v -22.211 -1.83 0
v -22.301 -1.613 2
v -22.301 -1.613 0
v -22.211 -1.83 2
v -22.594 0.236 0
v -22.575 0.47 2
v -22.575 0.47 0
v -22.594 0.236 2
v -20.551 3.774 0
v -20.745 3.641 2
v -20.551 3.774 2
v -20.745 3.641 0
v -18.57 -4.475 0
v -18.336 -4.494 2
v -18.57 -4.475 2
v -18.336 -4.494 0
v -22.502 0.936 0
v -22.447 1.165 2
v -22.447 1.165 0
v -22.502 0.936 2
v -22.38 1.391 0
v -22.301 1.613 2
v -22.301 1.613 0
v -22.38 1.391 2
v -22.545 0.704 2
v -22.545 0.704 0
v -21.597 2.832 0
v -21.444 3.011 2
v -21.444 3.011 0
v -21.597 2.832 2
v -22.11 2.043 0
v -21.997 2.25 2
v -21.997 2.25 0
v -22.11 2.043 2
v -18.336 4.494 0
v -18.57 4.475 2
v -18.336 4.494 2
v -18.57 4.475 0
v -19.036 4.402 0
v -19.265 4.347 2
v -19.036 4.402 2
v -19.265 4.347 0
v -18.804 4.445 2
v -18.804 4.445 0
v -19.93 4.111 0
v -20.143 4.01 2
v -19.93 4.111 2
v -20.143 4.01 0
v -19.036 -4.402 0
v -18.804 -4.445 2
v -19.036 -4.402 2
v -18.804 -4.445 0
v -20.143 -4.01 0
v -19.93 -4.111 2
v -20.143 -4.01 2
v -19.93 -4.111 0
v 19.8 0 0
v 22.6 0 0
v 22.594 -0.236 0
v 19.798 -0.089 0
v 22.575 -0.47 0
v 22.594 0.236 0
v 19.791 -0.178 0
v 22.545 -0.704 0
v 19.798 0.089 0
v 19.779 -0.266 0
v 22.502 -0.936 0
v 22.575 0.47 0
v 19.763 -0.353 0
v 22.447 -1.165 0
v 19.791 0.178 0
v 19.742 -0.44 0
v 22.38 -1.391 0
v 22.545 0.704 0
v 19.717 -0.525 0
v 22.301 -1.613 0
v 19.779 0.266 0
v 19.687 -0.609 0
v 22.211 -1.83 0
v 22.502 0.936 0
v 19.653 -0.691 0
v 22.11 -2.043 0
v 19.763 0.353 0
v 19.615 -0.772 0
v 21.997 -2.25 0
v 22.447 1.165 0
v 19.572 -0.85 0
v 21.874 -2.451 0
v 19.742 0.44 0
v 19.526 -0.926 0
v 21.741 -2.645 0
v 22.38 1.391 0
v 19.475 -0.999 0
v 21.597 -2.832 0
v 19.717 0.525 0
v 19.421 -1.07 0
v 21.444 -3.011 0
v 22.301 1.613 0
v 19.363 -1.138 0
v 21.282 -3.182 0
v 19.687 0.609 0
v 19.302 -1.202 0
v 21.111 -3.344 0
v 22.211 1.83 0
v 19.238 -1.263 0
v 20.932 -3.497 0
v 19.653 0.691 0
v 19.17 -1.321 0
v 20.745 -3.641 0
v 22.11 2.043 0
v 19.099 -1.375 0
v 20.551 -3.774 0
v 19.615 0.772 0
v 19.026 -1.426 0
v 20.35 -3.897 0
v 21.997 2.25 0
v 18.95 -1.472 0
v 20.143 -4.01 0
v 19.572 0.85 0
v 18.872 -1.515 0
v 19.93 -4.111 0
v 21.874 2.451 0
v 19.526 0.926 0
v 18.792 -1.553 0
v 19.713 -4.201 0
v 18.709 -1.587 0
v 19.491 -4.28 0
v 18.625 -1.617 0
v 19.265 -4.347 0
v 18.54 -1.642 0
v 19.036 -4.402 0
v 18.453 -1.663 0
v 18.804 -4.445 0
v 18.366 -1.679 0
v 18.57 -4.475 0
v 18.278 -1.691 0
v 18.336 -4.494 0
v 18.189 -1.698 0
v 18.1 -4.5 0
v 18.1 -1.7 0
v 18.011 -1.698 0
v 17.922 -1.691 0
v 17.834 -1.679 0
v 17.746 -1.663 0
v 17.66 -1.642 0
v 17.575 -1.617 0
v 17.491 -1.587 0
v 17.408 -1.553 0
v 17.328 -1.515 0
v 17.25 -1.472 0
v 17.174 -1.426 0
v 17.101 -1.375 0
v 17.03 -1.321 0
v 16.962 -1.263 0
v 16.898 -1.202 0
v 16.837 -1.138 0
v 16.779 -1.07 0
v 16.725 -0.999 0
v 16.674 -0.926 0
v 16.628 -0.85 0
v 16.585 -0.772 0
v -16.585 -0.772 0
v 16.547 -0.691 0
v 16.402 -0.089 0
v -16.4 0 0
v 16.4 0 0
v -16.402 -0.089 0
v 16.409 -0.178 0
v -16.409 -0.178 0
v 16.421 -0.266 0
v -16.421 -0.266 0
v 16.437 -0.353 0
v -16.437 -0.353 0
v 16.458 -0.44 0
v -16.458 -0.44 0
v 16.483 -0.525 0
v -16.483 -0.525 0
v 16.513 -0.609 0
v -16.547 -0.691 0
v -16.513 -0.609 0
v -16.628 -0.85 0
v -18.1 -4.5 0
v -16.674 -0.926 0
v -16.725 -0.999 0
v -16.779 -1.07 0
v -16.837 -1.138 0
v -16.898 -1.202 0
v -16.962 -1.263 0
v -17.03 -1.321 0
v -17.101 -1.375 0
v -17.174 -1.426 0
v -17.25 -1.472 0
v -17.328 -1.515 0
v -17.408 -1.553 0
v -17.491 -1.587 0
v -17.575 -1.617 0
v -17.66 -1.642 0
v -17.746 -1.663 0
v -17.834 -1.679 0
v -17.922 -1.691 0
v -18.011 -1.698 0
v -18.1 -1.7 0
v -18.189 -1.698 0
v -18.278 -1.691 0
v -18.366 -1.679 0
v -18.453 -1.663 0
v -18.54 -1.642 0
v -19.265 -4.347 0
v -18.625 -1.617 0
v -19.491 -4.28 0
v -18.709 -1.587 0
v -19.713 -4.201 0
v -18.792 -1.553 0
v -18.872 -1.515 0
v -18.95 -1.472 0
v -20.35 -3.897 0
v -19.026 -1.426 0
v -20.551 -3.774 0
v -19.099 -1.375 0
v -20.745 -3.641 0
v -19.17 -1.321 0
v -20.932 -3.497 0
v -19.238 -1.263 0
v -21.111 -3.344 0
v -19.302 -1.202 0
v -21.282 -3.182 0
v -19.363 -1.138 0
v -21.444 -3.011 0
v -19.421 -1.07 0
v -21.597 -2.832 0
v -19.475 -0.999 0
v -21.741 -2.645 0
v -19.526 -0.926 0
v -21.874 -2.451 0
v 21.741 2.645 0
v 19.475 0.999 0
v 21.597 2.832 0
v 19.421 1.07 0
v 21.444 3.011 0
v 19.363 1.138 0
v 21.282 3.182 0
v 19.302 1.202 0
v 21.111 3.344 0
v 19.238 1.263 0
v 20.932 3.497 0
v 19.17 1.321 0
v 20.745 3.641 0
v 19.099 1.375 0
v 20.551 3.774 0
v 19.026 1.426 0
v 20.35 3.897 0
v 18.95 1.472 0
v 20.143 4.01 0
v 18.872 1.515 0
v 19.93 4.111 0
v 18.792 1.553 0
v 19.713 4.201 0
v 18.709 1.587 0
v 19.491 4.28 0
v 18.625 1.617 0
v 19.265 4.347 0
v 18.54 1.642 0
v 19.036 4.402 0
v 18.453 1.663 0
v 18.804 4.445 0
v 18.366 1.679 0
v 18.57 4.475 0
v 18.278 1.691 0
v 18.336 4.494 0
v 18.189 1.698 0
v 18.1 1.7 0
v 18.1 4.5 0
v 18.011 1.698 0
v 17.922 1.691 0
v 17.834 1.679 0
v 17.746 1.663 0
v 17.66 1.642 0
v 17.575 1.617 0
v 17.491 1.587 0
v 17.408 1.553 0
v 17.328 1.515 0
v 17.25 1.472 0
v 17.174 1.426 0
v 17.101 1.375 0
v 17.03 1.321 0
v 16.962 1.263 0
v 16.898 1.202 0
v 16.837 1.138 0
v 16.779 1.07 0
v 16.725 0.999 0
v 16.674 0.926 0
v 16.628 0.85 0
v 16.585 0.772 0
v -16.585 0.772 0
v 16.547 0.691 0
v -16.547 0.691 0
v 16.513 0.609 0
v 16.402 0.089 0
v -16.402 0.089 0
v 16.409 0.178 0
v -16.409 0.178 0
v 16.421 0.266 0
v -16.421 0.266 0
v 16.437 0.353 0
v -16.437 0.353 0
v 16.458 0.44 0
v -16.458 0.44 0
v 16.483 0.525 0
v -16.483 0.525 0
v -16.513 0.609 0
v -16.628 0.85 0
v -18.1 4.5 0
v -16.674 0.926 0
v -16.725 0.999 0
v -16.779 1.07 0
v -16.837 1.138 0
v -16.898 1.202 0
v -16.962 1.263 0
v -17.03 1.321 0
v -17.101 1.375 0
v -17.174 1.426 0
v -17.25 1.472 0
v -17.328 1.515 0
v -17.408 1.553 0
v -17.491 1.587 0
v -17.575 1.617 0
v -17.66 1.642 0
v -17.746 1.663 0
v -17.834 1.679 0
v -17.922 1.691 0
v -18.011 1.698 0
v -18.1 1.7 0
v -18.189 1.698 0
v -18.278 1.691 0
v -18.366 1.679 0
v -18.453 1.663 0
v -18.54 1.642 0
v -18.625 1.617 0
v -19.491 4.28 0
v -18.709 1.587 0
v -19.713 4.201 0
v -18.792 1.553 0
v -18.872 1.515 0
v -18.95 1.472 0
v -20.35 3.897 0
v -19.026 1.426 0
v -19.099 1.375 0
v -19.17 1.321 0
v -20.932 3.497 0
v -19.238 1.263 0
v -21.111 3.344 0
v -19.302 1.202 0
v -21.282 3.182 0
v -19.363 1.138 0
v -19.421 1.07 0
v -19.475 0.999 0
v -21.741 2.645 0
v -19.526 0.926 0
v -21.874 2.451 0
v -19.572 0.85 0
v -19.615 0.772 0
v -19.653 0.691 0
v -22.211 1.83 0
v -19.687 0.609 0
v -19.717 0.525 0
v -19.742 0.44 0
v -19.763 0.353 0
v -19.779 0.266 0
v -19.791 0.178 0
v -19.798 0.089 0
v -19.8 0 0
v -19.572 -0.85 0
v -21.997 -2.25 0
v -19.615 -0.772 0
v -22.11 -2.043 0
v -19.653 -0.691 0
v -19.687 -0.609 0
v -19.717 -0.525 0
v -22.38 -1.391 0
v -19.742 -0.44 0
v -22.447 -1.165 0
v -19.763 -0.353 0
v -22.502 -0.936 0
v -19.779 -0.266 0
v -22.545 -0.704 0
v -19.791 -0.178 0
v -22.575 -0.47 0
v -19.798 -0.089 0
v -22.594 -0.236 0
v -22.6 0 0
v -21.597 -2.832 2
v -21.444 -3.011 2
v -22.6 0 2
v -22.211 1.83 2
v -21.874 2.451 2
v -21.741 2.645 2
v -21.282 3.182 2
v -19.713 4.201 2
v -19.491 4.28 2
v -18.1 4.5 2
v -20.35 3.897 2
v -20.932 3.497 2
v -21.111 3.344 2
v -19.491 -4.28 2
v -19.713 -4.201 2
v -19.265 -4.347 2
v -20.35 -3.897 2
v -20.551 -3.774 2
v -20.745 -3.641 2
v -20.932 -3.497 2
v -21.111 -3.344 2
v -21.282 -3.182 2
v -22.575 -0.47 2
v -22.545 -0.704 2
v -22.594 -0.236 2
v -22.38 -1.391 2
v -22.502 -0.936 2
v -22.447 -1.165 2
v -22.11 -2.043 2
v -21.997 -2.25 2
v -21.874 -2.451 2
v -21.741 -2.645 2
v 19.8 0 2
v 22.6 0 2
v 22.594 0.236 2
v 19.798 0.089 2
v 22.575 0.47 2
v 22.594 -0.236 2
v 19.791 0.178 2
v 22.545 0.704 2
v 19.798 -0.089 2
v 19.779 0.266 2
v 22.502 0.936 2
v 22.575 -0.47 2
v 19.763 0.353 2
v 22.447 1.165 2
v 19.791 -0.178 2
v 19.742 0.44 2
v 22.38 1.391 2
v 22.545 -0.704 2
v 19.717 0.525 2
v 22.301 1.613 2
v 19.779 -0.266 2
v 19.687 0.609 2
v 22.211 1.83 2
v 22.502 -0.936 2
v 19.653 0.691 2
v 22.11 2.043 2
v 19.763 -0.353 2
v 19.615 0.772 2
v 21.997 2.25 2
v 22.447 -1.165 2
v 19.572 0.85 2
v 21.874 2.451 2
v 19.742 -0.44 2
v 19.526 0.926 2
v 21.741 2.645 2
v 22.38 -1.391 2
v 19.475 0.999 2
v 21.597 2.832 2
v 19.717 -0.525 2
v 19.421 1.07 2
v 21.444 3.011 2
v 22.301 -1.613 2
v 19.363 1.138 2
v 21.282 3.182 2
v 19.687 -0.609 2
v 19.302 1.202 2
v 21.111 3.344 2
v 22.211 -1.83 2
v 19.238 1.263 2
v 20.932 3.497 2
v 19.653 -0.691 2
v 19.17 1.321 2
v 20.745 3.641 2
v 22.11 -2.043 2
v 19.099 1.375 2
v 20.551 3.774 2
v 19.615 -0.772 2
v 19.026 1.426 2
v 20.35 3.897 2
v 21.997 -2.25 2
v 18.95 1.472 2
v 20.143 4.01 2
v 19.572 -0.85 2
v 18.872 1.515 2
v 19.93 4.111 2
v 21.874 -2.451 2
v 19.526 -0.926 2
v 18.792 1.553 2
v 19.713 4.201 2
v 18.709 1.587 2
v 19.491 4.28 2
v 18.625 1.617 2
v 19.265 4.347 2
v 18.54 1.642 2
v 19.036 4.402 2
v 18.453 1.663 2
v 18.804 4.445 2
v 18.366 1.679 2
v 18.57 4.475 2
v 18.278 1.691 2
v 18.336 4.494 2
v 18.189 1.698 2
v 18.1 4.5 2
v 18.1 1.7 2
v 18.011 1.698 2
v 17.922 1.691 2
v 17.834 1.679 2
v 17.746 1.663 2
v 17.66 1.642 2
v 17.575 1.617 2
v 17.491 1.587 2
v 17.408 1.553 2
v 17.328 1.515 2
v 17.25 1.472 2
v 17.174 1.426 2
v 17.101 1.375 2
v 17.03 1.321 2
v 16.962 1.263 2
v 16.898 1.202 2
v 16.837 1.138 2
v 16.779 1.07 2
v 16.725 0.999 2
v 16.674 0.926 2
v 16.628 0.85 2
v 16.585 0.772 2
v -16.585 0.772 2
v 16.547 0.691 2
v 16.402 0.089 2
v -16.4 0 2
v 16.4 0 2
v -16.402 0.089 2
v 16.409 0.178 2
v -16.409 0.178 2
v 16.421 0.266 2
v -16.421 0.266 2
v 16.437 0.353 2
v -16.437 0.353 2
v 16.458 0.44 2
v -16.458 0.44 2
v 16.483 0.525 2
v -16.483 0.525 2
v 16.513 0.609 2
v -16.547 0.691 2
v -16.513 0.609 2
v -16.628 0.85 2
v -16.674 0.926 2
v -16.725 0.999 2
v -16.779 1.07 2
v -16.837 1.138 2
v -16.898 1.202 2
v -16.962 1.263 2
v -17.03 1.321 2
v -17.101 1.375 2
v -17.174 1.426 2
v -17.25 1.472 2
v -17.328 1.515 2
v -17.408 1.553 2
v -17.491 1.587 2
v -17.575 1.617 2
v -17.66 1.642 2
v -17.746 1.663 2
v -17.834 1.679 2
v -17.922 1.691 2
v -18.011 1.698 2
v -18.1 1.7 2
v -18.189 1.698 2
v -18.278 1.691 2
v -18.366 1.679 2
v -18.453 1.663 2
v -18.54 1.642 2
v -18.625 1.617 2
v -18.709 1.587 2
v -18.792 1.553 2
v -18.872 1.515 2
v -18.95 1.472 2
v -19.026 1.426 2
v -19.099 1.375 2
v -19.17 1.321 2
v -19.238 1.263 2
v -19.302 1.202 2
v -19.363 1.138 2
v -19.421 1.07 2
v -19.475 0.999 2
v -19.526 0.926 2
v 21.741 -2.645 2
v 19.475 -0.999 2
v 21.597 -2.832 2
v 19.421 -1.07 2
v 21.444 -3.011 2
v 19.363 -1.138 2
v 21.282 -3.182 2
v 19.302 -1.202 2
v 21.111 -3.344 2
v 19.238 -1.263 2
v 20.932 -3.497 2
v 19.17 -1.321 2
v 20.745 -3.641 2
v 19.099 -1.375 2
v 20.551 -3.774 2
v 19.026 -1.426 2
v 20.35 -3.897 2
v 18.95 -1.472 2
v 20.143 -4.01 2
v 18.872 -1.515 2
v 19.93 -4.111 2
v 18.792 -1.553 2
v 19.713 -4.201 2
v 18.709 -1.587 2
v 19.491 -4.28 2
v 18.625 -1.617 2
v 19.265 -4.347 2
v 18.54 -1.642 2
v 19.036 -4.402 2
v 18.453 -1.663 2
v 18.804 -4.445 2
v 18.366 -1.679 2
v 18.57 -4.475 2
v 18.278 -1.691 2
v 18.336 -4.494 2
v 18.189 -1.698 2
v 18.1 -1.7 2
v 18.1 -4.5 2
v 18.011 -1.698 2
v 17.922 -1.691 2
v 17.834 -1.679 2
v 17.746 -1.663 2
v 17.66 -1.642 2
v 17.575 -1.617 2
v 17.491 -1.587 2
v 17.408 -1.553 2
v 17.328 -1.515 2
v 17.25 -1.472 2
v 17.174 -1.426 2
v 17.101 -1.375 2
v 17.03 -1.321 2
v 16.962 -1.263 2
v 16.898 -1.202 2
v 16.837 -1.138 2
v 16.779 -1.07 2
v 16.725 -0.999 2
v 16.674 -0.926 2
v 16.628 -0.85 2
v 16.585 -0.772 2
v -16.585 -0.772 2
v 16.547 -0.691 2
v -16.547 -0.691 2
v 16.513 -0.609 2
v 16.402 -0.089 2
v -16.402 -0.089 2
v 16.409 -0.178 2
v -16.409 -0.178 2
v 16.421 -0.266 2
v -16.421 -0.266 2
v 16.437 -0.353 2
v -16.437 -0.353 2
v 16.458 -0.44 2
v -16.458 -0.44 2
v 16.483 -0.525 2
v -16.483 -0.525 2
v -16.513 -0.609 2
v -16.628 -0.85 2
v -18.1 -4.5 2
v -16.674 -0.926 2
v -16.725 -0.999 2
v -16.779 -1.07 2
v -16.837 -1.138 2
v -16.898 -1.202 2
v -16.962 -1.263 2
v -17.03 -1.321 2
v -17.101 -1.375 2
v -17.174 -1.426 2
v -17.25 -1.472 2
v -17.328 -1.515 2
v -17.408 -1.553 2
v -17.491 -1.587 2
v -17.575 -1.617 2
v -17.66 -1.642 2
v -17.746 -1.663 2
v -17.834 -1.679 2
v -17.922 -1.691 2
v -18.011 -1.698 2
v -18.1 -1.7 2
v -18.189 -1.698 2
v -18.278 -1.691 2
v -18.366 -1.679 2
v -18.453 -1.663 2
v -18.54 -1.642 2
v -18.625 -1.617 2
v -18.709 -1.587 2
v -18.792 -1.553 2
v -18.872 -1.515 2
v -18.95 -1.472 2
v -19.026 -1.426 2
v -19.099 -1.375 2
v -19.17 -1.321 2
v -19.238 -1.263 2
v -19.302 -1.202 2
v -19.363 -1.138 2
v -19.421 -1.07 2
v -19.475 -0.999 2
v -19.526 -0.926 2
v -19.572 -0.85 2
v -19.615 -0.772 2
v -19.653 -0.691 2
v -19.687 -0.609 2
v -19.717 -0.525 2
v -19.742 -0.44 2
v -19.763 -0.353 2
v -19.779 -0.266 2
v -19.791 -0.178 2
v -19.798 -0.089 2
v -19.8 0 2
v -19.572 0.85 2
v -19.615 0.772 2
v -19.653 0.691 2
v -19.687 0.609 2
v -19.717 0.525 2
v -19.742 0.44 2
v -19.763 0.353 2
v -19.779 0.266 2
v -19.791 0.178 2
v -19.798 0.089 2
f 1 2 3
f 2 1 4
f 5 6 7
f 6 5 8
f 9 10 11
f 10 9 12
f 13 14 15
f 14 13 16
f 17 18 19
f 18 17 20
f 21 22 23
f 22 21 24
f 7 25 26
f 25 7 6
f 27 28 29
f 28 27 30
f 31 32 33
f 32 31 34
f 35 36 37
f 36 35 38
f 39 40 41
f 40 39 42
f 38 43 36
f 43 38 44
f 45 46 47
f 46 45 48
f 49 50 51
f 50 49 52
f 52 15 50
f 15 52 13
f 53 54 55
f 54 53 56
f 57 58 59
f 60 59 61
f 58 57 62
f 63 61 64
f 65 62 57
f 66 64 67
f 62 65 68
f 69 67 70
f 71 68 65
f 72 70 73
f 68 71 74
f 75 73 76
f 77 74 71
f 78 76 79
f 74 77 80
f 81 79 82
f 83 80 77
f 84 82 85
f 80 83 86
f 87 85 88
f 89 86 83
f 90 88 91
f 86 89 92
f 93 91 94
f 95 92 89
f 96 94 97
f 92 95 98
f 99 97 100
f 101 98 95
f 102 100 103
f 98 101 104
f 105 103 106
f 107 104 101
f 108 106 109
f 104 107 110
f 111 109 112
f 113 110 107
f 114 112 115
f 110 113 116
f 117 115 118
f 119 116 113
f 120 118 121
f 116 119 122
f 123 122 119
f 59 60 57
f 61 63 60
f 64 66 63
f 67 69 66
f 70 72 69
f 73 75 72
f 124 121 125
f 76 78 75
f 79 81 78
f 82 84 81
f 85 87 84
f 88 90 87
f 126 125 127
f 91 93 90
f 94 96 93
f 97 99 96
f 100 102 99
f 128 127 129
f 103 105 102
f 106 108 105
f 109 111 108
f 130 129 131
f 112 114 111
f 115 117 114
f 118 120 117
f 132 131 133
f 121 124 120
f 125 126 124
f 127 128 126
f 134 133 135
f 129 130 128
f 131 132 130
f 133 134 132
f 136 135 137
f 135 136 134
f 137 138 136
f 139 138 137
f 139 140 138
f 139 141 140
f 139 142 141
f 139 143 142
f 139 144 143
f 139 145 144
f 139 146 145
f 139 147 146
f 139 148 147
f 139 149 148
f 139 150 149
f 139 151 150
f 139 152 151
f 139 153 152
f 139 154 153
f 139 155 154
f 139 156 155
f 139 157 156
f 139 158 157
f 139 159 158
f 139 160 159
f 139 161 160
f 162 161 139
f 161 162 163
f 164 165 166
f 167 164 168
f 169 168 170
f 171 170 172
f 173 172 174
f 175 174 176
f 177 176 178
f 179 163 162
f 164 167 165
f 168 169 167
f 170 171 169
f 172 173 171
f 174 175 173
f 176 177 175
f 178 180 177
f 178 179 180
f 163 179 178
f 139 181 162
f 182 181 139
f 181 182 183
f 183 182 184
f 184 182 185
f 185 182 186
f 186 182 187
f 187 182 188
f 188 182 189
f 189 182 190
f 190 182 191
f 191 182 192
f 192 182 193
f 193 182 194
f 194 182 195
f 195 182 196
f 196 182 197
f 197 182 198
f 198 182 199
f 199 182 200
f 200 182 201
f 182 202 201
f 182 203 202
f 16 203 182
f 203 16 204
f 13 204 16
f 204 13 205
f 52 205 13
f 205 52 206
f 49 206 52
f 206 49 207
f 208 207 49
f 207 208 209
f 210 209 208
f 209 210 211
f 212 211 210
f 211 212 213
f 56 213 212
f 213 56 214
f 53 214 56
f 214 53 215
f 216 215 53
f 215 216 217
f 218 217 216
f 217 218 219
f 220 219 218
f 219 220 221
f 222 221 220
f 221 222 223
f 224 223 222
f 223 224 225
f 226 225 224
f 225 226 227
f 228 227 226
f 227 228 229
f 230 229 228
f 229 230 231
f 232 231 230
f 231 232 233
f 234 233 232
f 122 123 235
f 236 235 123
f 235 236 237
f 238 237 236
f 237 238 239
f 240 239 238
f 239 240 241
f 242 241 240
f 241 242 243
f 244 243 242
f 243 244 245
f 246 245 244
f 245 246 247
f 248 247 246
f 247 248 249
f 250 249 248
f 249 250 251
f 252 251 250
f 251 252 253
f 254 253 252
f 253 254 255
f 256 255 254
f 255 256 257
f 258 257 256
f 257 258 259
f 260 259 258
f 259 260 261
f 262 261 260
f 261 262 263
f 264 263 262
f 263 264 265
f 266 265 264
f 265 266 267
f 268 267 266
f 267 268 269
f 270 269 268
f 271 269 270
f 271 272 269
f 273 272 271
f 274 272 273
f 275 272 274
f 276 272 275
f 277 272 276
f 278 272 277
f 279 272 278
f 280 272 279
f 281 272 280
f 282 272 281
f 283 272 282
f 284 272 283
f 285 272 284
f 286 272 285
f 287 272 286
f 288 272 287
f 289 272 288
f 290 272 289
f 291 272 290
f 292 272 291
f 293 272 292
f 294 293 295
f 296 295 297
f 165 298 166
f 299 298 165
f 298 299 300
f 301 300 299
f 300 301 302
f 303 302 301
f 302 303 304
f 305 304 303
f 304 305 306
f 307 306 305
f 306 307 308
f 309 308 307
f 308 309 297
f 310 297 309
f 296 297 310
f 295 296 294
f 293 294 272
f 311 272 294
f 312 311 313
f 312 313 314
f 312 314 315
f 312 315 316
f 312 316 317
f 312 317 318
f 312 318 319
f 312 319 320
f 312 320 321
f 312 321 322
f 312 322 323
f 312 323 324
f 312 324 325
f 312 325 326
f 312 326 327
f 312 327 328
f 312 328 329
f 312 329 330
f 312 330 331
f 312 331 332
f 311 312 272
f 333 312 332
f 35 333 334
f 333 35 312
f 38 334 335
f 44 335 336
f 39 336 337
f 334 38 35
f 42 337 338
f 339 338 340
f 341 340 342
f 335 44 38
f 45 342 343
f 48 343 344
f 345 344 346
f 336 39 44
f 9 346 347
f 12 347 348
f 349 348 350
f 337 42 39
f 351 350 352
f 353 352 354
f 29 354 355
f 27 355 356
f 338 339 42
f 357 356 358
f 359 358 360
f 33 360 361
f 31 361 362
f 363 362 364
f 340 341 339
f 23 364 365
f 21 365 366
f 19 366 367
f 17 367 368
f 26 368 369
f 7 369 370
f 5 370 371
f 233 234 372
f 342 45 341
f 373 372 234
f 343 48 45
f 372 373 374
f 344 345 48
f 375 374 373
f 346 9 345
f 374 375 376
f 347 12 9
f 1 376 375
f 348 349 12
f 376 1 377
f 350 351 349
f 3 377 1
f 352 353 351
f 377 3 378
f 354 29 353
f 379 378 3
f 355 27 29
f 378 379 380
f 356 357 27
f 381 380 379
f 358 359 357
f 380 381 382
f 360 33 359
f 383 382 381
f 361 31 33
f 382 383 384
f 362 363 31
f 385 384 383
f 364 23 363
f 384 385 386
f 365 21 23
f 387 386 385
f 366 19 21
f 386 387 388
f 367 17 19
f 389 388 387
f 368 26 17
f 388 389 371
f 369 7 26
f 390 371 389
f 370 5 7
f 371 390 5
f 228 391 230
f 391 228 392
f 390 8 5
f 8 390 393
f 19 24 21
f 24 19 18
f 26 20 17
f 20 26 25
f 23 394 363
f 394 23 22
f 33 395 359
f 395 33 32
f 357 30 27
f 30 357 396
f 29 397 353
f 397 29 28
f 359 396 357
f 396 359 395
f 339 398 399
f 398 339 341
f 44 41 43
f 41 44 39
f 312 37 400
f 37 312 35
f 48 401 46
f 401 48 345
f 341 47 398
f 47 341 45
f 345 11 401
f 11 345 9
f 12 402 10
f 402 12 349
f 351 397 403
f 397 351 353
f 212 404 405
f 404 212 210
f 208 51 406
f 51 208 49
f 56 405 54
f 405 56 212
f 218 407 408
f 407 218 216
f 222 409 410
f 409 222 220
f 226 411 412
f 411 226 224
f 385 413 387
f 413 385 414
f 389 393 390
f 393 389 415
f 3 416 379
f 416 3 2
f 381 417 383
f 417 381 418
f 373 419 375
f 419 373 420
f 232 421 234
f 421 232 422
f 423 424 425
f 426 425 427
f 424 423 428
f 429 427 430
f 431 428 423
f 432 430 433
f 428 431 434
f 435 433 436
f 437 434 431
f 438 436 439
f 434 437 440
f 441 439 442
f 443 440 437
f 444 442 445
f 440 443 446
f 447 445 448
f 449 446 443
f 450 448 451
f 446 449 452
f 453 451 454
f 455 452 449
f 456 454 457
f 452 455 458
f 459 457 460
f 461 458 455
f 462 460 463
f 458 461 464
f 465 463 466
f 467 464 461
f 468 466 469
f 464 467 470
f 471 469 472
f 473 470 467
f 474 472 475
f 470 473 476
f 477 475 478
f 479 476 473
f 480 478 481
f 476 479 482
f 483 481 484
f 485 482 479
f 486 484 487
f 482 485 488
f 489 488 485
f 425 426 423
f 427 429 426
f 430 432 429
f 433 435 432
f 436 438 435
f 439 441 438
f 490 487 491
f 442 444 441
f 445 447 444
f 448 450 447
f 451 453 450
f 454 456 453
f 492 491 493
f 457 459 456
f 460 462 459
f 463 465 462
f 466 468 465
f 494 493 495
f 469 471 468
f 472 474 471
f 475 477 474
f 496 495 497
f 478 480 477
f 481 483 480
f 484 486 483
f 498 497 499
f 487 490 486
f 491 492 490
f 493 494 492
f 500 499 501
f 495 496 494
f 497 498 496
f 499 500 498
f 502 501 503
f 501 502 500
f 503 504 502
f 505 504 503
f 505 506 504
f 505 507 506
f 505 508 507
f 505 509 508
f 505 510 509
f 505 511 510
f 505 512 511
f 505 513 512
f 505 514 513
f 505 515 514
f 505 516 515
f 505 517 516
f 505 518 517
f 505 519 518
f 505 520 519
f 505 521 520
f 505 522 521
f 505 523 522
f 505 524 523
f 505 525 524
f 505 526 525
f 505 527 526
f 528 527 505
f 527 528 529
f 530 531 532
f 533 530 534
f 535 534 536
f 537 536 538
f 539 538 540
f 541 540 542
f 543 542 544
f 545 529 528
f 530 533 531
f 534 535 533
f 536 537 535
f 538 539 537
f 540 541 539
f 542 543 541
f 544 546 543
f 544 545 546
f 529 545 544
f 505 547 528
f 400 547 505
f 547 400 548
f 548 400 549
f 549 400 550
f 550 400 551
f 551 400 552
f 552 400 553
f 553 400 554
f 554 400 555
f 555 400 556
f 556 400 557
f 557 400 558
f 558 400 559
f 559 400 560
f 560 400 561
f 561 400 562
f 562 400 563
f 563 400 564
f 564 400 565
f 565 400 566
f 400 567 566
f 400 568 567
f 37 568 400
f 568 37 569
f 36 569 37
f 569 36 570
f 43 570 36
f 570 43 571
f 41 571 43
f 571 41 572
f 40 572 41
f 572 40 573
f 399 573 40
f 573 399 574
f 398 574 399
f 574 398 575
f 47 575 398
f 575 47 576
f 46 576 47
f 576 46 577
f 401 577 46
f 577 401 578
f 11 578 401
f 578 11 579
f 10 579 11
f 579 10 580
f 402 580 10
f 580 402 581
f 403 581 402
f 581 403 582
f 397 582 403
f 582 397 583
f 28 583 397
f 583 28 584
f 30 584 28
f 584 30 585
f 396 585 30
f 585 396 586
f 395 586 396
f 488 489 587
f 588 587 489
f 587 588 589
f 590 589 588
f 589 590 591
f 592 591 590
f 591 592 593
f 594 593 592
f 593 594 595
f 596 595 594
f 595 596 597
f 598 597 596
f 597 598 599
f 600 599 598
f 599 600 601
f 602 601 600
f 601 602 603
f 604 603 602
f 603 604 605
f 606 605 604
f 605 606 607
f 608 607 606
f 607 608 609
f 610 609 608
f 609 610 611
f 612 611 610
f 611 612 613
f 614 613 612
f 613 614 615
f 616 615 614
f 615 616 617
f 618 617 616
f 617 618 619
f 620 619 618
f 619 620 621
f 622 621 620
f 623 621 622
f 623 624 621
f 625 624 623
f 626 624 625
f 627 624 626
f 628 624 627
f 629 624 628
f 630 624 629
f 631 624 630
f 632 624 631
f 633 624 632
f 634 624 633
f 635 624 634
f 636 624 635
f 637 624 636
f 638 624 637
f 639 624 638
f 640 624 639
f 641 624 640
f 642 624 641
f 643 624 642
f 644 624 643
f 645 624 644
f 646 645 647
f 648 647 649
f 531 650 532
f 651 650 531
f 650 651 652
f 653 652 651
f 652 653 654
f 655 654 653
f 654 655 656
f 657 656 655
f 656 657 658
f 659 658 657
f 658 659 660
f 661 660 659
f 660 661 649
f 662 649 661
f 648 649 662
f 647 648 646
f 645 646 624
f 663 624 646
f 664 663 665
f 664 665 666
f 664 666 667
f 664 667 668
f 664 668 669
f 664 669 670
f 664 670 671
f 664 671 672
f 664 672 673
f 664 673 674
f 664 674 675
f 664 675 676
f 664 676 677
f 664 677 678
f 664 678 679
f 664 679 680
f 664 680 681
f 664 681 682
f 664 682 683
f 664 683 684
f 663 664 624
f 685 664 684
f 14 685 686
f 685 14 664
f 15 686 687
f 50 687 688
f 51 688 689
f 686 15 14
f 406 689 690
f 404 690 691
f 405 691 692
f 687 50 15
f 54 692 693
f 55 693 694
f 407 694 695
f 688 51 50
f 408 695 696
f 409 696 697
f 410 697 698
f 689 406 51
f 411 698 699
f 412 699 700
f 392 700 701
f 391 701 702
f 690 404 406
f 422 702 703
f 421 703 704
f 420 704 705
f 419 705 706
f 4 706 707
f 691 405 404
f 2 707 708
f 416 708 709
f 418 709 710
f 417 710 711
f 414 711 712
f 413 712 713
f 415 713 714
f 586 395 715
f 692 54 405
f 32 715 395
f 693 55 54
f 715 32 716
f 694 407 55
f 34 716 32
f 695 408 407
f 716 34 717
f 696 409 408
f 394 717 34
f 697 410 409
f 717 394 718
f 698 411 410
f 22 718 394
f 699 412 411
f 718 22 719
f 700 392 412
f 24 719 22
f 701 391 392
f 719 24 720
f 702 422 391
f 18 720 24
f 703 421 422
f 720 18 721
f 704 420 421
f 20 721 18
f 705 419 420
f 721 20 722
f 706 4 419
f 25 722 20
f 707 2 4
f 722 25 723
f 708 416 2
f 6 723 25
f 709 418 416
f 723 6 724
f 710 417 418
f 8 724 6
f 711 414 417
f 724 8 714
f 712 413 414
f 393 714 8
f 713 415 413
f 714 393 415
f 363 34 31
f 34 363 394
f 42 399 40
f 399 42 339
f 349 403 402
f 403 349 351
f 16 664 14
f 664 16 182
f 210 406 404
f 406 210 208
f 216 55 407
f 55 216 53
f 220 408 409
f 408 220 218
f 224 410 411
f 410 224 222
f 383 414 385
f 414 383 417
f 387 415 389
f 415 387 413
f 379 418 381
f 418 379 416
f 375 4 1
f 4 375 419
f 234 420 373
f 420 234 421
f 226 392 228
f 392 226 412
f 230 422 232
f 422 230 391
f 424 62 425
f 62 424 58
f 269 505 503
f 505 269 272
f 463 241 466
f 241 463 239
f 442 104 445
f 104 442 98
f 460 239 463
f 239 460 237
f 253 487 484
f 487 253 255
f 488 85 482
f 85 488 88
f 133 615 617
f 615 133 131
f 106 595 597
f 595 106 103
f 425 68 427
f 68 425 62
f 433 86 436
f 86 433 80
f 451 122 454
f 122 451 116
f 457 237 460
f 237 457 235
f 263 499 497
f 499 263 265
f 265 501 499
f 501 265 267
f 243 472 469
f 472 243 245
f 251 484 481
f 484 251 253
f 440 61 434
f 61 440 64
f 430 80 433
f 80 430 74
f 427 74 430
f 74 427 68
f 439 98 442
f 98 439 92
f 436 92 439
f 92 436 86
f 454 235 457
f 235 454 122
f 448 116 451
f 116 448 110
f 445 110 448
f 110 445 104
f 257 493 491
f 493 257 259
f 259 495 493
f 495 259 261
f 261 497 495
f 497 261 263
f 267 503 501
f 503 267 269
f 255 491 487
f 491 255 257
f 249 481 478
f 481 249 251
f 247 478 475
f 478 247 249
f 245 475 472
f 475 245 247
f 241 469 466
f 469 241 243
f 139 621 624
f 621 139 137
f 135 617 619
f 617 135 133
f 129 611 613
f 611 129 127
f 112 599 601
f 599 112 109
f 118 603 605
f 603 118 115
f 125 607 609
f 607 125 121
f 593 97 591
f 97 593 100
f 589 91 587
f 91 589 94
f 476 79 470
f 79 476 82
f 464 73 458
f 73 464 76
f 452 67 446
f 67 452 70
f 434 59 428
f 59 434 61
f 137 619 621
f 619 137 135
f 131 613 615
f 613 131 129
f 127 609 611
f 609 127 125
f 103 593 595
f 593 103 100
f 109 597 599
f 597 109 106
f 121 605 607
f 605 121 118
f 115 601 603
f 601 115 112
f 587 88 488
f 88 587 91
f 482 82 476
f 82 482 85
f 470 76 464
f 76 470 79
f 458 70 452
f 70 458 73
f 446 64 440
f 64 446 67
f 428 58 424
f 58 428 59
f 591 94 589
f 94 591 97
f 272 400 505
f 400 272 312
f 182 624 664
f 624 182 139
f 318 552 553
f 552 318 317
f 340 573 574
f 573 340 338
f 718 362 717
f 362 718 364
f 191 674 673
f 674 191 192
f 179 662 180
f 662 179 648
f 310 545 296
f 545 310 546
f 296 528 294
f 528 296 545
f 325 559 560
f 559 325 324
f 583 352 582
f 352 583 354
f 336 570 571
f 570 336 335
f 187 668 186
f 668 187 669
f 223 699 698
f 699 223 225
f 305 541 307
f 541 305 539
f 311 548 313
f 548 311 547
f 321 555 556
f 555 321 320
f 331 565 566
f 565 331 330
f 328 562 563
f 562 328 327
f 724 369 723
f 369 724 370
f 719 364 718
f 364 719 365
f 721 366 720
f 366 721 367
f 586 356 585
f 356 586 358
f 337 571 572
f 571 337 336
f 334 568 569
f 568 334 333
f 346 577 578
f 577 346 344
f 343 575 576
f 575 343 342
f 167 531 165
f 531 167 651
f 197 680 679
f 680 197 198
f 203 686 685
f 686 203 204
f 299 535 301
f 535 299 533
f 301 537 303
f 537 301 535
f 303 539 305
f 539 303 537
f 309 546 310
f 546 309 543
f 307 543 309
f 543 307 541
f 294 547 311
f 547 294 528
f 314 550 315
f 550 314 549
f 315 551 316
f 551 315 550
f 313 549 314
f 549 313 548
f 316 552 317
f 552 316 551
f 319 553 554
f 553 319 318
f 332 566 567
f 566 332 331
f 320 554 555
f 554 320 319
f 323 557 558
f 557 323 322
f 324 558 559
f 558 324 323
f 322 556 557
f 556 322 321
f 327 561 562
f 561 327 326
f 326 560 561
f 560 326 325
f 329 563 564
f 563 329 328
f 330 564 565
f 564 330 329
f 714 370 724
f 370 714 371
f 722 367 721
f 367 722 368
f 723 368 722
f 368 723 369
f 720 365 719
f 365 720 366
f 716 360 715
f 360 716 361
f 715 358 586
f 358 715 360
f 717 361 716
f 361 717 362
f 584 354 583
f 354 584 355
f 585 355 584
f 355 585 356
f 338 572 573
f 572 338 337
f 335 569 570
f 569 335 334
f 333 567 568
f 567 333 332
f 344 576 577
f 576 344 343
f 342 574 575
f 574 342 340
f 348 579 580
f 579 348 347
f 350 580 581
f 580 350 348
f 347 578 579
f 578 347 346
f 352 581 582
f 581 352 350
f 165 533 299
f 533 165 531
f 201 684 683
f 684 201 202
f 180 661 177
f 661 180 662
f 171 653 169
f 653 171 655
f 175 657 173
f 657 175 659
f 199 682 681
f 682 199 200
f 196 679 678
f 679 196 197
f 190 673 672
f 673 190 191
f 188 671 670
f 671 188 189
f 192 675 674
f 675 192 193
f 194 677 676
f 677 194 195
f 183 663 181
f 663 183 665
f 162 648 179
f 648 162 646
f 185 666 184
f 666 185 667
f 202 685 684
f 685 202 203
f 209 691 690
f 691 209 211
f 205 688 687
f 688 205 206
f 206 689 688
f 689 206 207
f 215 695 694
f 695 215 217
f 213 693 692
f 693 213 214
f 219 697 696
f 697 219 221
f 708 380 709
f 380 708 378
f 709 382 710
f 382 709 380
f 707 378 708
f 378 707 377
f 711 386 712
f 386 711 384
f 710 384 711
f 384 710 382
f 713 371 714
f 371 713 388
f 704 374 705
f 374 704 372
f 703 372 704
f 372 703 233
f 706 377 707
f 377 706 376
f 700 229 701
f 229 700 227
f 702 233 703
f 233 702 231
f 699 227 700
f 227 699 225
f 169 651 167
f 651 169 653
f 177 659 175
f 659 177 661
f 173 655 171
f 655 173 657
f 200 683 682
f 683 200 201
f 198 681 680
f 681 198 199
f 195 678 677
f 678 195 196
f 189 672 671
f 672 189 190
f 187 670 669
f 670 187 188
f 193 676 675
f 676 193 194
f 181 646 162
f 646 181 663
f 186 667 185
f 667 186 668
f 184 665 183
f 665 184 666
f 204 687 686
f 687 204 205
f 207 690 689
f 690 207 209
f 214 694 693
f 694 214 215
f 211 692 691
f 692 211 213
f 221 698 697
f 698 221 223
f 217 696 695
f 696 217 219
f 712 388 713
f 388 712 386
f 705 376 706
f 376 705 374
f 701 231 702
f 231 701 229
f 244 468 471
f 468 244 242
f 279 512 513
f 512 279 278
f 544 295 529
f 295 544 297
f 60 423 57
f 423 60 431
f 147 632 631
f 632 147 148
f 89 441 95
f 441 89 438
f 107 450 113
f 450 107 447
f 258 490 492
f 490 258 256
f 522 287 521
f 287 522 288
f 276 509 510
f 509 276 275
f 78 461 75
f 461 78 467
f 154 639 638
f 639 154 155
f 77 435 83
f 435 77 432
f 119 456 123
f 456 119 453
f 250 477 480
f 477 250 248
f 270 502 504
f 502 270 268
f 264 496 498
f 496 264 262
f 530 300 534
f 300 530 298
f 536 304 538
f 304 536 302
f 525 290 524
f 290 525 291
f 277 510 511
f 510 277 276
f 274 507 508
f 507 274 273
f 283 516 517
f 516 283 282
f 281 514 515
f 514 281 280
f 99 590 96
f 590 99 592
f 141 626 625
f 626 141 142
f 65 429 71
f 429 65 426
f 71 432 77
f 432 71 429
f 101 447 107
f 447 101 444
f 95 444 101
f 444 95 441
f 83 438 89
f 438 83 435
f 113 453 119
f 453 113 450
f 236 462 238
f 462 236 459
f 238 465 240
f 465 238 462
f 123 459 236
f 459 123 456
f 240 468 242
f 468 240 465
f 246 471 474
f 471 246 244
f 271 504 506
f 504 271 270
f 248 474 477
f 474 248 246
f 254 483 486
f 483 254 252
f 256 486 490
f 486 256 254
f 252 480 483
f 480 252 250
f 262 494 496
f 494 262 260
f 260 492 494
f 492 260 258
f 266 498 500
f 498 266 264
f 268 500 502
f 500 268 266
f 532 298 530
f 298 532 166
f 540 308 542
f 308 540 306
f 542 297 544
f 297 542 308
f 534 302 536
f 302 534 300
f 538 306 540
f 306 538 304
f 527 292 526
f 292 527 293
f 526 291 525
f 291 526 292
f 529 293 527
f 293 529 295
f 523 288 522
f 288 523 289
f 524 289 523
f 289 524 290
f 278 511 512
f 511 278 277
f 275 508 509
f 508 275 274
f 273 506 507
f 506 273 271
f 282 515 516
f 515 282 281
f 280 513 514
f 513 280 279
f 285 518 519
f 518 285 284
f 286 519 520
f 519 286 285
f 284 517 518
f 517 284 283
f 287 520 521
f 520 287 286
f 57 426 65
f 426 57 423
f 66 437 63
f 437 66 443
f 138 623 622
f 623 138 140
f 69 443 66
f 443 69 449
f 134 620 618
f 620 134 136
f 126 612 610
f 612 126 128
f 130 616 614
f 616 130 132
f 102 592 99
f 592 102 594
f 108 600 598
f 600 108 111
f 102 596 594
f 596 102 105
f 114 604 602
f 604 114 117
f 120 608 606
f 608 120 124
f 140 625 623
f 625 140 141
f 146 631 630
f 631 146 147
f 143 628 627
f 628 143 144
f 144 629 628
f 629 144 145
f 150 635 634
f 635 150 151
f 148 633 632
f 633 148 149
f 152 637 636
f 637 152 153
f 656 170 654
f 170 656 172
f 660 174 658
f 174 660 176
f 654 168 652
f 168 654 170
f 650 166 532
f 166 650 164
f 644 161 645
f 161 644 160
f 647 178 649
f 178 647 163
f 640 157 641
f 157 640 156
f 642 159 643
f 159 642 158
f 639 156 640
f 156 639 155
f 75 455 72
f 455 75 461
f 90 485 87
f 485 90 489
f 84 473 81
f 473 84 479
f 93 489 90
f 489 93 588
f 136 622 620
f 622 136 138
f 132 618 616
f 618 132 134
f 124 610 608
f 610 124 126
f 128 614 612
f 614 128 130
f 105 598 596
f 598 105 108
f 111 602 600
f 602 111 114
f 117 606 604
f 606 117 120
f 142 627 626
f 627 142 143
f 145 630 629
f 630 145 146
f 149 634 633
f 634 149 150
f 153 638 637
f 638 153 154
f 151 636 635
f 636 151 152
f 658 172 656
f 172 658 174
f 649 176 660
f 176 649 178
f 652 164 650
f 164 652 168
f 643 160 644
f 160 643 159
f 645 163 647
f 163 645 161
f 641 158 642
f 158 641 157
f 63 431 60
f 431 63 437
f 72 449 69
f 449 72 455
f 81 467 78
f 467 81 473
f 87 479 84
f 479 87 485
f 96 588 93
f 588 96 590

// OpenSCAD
// Amiga 1200 micro SD card reader bracket - top plate
// RealGusi (C) 2020
// https://maniana.net
// Creative Commons - Attribution - Non-Commercial - Share Alike license.

$fn = 120;

$back_wall_thickness = 4.8;
$back_wall_height = 3;
$side_wall_thickness = 2.8;
$side_wall_height = 7.0;
$reader_width = 26;
$reader_length = 31;

$plate_width = 45.2;
$plate_length = $reader_length + $back_wall_thickness;
$mounting_hole_depth = 2.2;
$mounting_hole_diameter = 11 / 2;
$mounting_hole_distance = 19;
$plate_thickness = 6;

$screw_diameter = 2.8 / 2;

$screw_block_size = 9;
$screw_block_depth = 5;

$reader_base_width = $reader_width + 2 * $side_wall_thickness;

$top_plate_height = 2;
$top_plate_screw_diameter = 3.4 / 2;

module screw_blocks (){
    difference () {       
        union () {
            translate( [ - $plate_width / 2 + $screw_block_size / 2, 0, 0])
            cylinder( h = $top_plate_height, r = $screw_block_size / 2);    

            translate( [   $plate_width / 2 - $screw_block_size / 2, 0, 0])
            cylinder( h = $top_plate_height, r = $screw_block_size / 2);    
            
            translate( [ - $plate_width / 2 + $screw_block_size / 2, 
                         - $screw_block_size / 2, 0])
            cube( [ $plate_width - $screw_block_size, 
                    $screw_block_size, 
                    $top_plate_height]);
        }

        translate( [ - $plate_width / 2 + $screw_block_size / 2, 
                       0, 0])
        cylinder( h = $top_plate_height, r = $top_plate_screw_diameter);    
        translate( [   $plate_width / 2 - $screw_block_size / 2, 
                       0, 0])
        cylinder( h = $top_plate_height, r = $top_plate_screw_diameter);    
    }
}

screw_blocks();
